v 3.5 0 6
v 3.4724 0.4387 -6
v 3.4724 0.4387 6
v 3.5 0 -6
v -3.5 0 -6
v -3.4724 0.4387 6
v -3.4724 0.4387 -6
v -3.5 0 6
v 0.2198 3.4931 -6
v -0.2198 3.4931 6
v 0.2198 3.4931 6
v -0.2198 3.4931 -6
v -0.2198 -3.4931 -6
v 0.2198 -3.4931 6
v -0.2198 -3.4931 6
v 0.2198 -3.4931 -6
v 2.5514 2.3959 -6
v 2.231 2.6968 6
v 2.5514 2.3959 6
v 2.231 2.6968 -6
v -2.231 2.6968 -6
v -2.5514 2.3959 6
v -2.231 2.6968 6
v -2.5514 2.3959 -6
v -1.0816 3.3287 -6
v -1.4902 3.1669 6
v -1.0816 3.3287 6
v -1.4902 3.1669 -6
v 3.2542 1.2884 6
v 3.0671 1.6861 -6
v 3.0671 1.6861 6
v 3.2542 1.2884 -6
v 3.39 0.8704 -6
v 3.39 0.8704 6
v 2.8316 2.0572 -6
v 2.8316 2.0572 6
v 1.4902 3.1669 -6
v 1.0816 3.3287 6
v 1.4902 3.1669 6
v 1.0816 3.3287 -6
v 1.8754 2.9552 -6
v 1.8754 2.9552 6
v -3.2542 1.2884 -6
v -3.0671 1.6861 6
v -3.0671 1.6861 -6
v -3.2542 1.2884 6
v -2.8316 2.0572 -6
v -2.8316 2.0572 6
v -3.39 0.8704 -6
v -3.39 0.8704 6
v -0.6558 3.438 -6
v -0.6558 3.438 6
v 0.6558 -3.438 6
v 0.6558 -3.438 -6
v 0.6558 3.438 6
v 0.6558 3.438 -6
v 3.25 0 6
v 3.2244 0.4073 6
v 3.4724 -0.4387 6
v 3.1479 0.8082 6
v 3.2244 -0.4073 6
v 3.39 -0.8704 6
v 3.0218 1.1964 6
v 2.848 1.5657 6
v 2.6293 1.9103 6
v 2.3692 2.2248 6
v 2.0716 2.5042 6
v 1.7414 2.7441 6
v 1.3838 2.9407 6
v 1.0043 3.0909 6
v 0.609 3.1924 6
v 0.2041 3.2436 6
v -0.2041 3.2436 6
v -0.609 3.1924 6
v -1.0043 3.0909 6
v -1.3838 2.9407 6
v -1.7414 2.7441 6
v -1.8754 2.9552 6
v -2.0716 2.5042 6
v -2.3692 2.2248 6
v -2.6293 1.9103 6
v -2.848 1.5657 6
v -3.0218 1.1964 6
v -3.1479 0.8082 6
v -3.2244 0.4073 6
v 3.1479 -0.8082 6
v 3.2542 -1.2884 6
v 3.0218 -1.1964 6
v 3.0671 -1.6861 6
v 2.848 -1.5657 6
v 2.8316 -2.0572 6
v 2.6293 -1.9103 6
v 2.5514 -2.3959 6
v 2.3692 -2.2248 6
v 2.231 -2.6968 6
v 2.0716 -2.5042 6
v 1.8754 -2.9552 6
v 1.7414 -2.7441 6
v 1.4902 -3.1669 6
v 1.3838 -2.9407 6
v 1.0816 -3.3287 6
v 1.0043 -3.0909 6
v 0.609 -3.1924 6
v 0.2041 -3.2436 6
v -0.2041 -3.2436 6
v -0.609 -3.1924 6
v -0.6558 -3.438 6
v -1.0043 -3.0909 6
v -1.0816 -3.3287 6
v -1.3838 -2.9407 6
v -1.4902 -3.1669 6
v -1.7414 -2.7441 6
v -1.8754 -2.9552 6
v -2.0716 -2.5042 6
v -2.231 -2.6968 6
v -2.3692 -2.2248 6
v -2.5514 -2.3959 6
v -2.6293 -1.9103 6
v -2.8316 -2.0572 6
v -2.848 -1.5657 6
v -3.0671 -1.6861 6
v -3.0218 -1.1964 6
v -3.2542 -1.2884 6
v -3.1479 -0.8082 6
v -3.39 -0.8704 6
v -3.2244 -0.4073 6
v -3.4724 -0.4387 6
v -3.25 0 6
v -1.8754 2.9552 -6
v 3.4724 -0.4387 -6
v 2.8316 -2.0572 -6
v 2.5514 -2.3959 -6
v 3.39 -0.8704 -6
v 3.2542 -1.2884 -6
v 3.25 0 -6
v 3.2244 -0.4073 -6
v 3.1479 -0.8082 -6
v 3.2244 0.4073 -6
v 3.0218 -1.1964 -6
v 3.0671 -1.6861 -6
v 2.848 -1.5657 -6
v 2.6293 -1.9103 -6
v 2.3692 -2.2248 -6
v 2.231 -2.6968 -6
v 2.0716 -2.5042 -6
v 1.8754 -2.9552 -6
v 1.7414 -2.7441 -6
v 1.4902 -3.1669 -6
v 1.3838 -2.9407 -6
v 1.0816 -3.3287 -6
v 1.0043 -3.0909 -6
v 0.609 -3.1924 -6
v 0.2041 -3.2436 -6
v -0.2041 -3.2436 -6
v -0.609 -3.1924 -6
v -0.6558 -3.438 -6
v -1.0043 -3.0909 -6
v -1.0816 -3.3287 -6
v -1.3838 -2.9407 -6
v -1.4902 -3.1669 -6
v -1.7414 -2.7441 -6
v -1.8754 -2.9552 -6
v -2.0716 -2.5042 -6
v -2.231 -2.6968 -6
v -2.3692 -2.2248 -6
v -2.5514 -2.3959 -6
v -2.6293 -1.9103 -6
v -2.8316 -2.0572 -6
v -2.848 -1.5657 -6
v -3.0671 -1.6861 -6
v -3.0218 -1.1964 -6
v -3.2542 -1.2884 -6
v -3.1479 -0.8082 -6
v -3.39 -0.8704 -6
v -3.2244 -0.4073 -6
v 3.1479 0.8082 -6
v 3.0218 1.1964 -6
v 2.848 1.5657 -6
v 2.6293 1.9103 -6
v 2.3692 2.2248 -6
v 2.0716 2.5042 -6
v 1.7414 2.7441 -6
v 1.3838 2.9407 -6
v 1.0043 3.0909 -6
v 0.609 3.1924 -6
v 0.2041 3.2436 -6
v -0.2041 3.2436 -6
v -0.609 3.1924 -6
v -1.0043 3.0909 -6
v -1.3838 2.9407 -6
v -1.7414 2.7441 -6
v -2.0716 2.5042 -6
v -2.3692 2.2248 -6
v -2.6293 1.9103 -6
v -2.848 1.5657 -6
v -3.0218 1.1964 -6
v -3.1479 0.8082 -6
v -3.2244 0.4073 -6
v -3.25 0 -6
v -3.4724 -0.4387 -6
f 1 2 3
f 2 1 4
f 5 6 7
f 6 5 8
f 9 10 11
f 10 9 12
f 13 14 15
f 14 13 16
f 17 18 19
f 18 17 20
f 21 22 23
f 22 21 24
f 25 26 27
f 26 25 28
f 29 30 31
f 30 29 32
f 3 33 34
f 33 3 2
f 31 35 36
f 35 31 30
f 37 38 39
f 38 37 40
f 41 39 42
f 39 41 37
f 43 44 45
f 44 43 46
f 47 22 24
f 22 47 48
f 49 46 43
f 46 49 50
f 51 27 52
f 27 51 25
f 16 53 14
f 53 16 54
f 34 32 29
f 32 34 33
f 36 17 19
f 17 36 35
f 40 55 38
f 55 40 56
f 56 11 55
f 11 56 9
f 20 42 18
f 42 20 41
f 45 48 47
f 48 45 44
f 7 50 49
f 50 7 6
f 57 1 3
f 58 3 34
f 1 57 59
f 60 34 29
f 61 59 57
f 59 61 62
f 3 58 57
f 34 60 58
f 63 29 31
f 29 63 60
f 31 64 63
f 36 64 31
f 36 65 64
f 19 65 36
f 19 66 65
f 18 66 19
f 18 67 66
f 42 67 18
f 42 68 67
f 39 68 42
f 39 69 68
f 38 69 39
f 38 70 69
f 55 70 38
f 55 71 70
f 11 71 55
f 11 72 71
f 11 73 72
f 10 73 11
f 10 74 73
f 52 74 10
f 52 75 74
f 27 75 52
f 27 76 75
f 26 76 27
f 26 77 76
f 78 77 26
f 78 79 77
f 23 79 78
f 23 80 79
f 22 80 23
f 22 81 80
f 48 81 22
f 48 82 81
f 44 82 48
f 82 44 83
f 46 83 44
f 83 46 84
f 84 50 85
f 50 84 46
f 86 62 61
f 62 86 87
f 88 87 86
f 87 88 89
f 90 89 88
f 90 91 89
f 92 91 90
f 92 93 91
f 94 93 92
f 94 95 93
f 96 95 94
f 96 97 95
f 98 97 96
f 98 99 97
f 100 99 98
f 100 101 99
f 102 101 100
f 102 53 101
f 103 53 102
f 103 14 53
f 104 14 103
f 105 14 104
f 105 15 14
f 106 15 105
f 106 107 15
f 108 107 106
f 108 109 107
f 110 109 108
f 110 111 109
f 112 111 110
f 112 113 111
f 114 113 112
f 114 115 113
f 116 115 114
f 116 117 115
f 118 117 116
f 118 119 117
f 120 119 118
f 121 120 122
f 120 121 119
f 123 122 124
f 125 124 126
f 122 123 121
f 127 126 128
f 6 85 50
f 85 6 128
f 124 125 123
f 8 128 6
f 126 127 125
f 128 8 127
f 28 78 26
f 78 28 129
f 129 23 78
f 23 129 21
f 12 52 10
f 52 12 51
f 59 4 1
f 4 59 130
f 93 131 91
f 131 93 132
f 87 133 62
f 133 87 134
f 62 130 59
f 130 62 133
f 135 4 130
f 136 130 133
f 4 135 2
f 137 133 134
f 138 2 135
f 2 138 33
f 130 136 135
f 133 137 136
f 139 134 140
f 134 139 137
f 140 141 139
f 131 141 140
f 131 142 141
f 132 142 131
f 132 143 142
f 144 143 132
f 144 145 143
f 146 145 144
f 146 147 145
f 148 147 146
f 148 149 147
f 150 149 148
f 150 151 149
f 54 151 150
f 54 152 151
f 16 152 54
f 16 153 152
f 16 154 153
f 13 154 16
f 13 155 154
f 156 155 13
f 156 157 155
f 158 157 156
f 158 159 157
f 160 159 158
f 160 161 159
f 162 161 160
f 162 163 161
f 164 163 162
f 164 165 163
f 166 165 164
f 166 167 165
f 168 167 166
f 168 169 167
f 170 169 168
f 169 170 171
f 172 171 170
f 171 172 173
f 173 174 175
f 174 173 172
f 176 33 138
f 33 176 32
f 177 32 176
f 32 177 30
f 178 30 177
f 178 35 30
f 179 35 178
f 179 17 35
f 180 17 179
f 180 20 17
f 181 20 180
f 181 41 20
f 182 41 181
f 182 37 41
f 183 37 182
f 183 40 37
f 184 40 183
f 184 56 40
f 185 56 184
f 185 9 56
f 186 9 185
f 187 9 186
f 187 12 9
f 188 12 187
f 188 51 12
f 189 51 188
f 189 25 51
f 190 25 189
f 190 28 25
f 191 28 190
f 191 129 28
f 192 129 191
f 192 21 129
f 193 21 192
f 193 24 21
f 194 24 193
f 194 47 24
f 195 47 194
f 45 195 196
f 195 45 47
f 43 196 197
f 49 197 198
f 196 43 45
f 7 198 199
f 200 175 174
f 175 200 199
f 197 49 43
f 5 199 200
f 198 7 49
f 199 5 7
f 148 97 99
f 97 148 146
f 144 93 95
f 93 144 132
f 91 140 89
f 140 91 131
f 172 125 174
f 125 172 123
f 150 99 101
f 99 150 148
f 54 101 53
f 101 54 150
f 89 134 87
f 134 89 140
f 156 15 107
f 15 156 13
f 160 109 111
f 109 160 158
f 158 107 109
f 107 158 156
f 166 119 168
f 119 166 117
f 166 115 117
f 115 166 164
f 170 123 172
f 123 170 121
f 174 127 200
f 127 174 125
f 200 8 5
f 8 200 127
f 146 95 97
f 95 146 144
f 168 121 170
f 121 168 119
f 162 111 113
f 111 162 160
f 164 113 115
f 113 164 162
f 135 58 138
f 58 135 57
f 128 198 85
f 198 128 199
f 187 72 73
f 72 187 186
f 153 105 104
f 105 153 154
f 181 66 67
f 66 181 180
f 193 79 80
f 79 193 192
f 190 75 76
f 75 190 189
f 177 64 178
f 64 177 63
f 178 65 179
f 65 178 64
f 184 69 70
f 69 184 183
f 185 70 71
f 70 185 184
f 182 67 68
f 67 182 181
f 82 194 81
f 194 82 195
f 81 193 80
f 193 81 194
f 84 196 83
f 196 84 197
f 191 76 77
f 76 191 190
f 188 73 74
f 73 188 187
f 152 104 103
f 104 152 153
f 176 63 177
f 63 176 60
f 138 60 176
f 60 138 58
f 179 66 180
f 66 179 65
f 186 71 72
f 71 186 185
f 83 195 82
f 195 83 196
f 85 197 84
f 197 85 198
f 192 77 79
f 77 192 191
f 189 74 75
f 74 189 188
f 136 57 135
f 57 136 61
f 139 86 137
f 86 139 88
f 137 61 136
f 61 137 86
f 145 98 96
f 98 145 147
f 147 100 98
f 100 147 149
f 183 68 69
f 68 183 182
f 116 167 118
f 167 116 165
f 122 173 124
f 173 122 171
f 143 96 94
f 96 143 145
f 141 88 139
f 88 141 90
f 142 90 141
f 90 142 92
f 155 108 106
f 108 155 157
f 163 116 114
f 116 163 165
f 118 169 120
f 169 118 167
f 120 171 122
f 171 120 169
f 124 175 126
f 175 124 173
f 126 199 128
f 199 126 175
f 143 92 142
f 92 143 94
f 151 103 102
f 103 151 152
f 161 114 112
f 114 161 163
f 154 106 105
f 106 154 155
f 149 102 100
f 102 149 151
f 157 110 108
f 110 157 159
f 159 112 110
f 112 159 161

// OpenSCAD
$fn = 50;


difference() {
	union() {
		translate(v = [0, 0, -6.0000000000]) {
			cylinder(h = 12, r = 3.5000000000);
		}
	}
	union() {
		translate(v = [0, 0, -100.0000000000]) {
			cylinder(h = 200, r = 3.2500000000);
		}
	}
}
